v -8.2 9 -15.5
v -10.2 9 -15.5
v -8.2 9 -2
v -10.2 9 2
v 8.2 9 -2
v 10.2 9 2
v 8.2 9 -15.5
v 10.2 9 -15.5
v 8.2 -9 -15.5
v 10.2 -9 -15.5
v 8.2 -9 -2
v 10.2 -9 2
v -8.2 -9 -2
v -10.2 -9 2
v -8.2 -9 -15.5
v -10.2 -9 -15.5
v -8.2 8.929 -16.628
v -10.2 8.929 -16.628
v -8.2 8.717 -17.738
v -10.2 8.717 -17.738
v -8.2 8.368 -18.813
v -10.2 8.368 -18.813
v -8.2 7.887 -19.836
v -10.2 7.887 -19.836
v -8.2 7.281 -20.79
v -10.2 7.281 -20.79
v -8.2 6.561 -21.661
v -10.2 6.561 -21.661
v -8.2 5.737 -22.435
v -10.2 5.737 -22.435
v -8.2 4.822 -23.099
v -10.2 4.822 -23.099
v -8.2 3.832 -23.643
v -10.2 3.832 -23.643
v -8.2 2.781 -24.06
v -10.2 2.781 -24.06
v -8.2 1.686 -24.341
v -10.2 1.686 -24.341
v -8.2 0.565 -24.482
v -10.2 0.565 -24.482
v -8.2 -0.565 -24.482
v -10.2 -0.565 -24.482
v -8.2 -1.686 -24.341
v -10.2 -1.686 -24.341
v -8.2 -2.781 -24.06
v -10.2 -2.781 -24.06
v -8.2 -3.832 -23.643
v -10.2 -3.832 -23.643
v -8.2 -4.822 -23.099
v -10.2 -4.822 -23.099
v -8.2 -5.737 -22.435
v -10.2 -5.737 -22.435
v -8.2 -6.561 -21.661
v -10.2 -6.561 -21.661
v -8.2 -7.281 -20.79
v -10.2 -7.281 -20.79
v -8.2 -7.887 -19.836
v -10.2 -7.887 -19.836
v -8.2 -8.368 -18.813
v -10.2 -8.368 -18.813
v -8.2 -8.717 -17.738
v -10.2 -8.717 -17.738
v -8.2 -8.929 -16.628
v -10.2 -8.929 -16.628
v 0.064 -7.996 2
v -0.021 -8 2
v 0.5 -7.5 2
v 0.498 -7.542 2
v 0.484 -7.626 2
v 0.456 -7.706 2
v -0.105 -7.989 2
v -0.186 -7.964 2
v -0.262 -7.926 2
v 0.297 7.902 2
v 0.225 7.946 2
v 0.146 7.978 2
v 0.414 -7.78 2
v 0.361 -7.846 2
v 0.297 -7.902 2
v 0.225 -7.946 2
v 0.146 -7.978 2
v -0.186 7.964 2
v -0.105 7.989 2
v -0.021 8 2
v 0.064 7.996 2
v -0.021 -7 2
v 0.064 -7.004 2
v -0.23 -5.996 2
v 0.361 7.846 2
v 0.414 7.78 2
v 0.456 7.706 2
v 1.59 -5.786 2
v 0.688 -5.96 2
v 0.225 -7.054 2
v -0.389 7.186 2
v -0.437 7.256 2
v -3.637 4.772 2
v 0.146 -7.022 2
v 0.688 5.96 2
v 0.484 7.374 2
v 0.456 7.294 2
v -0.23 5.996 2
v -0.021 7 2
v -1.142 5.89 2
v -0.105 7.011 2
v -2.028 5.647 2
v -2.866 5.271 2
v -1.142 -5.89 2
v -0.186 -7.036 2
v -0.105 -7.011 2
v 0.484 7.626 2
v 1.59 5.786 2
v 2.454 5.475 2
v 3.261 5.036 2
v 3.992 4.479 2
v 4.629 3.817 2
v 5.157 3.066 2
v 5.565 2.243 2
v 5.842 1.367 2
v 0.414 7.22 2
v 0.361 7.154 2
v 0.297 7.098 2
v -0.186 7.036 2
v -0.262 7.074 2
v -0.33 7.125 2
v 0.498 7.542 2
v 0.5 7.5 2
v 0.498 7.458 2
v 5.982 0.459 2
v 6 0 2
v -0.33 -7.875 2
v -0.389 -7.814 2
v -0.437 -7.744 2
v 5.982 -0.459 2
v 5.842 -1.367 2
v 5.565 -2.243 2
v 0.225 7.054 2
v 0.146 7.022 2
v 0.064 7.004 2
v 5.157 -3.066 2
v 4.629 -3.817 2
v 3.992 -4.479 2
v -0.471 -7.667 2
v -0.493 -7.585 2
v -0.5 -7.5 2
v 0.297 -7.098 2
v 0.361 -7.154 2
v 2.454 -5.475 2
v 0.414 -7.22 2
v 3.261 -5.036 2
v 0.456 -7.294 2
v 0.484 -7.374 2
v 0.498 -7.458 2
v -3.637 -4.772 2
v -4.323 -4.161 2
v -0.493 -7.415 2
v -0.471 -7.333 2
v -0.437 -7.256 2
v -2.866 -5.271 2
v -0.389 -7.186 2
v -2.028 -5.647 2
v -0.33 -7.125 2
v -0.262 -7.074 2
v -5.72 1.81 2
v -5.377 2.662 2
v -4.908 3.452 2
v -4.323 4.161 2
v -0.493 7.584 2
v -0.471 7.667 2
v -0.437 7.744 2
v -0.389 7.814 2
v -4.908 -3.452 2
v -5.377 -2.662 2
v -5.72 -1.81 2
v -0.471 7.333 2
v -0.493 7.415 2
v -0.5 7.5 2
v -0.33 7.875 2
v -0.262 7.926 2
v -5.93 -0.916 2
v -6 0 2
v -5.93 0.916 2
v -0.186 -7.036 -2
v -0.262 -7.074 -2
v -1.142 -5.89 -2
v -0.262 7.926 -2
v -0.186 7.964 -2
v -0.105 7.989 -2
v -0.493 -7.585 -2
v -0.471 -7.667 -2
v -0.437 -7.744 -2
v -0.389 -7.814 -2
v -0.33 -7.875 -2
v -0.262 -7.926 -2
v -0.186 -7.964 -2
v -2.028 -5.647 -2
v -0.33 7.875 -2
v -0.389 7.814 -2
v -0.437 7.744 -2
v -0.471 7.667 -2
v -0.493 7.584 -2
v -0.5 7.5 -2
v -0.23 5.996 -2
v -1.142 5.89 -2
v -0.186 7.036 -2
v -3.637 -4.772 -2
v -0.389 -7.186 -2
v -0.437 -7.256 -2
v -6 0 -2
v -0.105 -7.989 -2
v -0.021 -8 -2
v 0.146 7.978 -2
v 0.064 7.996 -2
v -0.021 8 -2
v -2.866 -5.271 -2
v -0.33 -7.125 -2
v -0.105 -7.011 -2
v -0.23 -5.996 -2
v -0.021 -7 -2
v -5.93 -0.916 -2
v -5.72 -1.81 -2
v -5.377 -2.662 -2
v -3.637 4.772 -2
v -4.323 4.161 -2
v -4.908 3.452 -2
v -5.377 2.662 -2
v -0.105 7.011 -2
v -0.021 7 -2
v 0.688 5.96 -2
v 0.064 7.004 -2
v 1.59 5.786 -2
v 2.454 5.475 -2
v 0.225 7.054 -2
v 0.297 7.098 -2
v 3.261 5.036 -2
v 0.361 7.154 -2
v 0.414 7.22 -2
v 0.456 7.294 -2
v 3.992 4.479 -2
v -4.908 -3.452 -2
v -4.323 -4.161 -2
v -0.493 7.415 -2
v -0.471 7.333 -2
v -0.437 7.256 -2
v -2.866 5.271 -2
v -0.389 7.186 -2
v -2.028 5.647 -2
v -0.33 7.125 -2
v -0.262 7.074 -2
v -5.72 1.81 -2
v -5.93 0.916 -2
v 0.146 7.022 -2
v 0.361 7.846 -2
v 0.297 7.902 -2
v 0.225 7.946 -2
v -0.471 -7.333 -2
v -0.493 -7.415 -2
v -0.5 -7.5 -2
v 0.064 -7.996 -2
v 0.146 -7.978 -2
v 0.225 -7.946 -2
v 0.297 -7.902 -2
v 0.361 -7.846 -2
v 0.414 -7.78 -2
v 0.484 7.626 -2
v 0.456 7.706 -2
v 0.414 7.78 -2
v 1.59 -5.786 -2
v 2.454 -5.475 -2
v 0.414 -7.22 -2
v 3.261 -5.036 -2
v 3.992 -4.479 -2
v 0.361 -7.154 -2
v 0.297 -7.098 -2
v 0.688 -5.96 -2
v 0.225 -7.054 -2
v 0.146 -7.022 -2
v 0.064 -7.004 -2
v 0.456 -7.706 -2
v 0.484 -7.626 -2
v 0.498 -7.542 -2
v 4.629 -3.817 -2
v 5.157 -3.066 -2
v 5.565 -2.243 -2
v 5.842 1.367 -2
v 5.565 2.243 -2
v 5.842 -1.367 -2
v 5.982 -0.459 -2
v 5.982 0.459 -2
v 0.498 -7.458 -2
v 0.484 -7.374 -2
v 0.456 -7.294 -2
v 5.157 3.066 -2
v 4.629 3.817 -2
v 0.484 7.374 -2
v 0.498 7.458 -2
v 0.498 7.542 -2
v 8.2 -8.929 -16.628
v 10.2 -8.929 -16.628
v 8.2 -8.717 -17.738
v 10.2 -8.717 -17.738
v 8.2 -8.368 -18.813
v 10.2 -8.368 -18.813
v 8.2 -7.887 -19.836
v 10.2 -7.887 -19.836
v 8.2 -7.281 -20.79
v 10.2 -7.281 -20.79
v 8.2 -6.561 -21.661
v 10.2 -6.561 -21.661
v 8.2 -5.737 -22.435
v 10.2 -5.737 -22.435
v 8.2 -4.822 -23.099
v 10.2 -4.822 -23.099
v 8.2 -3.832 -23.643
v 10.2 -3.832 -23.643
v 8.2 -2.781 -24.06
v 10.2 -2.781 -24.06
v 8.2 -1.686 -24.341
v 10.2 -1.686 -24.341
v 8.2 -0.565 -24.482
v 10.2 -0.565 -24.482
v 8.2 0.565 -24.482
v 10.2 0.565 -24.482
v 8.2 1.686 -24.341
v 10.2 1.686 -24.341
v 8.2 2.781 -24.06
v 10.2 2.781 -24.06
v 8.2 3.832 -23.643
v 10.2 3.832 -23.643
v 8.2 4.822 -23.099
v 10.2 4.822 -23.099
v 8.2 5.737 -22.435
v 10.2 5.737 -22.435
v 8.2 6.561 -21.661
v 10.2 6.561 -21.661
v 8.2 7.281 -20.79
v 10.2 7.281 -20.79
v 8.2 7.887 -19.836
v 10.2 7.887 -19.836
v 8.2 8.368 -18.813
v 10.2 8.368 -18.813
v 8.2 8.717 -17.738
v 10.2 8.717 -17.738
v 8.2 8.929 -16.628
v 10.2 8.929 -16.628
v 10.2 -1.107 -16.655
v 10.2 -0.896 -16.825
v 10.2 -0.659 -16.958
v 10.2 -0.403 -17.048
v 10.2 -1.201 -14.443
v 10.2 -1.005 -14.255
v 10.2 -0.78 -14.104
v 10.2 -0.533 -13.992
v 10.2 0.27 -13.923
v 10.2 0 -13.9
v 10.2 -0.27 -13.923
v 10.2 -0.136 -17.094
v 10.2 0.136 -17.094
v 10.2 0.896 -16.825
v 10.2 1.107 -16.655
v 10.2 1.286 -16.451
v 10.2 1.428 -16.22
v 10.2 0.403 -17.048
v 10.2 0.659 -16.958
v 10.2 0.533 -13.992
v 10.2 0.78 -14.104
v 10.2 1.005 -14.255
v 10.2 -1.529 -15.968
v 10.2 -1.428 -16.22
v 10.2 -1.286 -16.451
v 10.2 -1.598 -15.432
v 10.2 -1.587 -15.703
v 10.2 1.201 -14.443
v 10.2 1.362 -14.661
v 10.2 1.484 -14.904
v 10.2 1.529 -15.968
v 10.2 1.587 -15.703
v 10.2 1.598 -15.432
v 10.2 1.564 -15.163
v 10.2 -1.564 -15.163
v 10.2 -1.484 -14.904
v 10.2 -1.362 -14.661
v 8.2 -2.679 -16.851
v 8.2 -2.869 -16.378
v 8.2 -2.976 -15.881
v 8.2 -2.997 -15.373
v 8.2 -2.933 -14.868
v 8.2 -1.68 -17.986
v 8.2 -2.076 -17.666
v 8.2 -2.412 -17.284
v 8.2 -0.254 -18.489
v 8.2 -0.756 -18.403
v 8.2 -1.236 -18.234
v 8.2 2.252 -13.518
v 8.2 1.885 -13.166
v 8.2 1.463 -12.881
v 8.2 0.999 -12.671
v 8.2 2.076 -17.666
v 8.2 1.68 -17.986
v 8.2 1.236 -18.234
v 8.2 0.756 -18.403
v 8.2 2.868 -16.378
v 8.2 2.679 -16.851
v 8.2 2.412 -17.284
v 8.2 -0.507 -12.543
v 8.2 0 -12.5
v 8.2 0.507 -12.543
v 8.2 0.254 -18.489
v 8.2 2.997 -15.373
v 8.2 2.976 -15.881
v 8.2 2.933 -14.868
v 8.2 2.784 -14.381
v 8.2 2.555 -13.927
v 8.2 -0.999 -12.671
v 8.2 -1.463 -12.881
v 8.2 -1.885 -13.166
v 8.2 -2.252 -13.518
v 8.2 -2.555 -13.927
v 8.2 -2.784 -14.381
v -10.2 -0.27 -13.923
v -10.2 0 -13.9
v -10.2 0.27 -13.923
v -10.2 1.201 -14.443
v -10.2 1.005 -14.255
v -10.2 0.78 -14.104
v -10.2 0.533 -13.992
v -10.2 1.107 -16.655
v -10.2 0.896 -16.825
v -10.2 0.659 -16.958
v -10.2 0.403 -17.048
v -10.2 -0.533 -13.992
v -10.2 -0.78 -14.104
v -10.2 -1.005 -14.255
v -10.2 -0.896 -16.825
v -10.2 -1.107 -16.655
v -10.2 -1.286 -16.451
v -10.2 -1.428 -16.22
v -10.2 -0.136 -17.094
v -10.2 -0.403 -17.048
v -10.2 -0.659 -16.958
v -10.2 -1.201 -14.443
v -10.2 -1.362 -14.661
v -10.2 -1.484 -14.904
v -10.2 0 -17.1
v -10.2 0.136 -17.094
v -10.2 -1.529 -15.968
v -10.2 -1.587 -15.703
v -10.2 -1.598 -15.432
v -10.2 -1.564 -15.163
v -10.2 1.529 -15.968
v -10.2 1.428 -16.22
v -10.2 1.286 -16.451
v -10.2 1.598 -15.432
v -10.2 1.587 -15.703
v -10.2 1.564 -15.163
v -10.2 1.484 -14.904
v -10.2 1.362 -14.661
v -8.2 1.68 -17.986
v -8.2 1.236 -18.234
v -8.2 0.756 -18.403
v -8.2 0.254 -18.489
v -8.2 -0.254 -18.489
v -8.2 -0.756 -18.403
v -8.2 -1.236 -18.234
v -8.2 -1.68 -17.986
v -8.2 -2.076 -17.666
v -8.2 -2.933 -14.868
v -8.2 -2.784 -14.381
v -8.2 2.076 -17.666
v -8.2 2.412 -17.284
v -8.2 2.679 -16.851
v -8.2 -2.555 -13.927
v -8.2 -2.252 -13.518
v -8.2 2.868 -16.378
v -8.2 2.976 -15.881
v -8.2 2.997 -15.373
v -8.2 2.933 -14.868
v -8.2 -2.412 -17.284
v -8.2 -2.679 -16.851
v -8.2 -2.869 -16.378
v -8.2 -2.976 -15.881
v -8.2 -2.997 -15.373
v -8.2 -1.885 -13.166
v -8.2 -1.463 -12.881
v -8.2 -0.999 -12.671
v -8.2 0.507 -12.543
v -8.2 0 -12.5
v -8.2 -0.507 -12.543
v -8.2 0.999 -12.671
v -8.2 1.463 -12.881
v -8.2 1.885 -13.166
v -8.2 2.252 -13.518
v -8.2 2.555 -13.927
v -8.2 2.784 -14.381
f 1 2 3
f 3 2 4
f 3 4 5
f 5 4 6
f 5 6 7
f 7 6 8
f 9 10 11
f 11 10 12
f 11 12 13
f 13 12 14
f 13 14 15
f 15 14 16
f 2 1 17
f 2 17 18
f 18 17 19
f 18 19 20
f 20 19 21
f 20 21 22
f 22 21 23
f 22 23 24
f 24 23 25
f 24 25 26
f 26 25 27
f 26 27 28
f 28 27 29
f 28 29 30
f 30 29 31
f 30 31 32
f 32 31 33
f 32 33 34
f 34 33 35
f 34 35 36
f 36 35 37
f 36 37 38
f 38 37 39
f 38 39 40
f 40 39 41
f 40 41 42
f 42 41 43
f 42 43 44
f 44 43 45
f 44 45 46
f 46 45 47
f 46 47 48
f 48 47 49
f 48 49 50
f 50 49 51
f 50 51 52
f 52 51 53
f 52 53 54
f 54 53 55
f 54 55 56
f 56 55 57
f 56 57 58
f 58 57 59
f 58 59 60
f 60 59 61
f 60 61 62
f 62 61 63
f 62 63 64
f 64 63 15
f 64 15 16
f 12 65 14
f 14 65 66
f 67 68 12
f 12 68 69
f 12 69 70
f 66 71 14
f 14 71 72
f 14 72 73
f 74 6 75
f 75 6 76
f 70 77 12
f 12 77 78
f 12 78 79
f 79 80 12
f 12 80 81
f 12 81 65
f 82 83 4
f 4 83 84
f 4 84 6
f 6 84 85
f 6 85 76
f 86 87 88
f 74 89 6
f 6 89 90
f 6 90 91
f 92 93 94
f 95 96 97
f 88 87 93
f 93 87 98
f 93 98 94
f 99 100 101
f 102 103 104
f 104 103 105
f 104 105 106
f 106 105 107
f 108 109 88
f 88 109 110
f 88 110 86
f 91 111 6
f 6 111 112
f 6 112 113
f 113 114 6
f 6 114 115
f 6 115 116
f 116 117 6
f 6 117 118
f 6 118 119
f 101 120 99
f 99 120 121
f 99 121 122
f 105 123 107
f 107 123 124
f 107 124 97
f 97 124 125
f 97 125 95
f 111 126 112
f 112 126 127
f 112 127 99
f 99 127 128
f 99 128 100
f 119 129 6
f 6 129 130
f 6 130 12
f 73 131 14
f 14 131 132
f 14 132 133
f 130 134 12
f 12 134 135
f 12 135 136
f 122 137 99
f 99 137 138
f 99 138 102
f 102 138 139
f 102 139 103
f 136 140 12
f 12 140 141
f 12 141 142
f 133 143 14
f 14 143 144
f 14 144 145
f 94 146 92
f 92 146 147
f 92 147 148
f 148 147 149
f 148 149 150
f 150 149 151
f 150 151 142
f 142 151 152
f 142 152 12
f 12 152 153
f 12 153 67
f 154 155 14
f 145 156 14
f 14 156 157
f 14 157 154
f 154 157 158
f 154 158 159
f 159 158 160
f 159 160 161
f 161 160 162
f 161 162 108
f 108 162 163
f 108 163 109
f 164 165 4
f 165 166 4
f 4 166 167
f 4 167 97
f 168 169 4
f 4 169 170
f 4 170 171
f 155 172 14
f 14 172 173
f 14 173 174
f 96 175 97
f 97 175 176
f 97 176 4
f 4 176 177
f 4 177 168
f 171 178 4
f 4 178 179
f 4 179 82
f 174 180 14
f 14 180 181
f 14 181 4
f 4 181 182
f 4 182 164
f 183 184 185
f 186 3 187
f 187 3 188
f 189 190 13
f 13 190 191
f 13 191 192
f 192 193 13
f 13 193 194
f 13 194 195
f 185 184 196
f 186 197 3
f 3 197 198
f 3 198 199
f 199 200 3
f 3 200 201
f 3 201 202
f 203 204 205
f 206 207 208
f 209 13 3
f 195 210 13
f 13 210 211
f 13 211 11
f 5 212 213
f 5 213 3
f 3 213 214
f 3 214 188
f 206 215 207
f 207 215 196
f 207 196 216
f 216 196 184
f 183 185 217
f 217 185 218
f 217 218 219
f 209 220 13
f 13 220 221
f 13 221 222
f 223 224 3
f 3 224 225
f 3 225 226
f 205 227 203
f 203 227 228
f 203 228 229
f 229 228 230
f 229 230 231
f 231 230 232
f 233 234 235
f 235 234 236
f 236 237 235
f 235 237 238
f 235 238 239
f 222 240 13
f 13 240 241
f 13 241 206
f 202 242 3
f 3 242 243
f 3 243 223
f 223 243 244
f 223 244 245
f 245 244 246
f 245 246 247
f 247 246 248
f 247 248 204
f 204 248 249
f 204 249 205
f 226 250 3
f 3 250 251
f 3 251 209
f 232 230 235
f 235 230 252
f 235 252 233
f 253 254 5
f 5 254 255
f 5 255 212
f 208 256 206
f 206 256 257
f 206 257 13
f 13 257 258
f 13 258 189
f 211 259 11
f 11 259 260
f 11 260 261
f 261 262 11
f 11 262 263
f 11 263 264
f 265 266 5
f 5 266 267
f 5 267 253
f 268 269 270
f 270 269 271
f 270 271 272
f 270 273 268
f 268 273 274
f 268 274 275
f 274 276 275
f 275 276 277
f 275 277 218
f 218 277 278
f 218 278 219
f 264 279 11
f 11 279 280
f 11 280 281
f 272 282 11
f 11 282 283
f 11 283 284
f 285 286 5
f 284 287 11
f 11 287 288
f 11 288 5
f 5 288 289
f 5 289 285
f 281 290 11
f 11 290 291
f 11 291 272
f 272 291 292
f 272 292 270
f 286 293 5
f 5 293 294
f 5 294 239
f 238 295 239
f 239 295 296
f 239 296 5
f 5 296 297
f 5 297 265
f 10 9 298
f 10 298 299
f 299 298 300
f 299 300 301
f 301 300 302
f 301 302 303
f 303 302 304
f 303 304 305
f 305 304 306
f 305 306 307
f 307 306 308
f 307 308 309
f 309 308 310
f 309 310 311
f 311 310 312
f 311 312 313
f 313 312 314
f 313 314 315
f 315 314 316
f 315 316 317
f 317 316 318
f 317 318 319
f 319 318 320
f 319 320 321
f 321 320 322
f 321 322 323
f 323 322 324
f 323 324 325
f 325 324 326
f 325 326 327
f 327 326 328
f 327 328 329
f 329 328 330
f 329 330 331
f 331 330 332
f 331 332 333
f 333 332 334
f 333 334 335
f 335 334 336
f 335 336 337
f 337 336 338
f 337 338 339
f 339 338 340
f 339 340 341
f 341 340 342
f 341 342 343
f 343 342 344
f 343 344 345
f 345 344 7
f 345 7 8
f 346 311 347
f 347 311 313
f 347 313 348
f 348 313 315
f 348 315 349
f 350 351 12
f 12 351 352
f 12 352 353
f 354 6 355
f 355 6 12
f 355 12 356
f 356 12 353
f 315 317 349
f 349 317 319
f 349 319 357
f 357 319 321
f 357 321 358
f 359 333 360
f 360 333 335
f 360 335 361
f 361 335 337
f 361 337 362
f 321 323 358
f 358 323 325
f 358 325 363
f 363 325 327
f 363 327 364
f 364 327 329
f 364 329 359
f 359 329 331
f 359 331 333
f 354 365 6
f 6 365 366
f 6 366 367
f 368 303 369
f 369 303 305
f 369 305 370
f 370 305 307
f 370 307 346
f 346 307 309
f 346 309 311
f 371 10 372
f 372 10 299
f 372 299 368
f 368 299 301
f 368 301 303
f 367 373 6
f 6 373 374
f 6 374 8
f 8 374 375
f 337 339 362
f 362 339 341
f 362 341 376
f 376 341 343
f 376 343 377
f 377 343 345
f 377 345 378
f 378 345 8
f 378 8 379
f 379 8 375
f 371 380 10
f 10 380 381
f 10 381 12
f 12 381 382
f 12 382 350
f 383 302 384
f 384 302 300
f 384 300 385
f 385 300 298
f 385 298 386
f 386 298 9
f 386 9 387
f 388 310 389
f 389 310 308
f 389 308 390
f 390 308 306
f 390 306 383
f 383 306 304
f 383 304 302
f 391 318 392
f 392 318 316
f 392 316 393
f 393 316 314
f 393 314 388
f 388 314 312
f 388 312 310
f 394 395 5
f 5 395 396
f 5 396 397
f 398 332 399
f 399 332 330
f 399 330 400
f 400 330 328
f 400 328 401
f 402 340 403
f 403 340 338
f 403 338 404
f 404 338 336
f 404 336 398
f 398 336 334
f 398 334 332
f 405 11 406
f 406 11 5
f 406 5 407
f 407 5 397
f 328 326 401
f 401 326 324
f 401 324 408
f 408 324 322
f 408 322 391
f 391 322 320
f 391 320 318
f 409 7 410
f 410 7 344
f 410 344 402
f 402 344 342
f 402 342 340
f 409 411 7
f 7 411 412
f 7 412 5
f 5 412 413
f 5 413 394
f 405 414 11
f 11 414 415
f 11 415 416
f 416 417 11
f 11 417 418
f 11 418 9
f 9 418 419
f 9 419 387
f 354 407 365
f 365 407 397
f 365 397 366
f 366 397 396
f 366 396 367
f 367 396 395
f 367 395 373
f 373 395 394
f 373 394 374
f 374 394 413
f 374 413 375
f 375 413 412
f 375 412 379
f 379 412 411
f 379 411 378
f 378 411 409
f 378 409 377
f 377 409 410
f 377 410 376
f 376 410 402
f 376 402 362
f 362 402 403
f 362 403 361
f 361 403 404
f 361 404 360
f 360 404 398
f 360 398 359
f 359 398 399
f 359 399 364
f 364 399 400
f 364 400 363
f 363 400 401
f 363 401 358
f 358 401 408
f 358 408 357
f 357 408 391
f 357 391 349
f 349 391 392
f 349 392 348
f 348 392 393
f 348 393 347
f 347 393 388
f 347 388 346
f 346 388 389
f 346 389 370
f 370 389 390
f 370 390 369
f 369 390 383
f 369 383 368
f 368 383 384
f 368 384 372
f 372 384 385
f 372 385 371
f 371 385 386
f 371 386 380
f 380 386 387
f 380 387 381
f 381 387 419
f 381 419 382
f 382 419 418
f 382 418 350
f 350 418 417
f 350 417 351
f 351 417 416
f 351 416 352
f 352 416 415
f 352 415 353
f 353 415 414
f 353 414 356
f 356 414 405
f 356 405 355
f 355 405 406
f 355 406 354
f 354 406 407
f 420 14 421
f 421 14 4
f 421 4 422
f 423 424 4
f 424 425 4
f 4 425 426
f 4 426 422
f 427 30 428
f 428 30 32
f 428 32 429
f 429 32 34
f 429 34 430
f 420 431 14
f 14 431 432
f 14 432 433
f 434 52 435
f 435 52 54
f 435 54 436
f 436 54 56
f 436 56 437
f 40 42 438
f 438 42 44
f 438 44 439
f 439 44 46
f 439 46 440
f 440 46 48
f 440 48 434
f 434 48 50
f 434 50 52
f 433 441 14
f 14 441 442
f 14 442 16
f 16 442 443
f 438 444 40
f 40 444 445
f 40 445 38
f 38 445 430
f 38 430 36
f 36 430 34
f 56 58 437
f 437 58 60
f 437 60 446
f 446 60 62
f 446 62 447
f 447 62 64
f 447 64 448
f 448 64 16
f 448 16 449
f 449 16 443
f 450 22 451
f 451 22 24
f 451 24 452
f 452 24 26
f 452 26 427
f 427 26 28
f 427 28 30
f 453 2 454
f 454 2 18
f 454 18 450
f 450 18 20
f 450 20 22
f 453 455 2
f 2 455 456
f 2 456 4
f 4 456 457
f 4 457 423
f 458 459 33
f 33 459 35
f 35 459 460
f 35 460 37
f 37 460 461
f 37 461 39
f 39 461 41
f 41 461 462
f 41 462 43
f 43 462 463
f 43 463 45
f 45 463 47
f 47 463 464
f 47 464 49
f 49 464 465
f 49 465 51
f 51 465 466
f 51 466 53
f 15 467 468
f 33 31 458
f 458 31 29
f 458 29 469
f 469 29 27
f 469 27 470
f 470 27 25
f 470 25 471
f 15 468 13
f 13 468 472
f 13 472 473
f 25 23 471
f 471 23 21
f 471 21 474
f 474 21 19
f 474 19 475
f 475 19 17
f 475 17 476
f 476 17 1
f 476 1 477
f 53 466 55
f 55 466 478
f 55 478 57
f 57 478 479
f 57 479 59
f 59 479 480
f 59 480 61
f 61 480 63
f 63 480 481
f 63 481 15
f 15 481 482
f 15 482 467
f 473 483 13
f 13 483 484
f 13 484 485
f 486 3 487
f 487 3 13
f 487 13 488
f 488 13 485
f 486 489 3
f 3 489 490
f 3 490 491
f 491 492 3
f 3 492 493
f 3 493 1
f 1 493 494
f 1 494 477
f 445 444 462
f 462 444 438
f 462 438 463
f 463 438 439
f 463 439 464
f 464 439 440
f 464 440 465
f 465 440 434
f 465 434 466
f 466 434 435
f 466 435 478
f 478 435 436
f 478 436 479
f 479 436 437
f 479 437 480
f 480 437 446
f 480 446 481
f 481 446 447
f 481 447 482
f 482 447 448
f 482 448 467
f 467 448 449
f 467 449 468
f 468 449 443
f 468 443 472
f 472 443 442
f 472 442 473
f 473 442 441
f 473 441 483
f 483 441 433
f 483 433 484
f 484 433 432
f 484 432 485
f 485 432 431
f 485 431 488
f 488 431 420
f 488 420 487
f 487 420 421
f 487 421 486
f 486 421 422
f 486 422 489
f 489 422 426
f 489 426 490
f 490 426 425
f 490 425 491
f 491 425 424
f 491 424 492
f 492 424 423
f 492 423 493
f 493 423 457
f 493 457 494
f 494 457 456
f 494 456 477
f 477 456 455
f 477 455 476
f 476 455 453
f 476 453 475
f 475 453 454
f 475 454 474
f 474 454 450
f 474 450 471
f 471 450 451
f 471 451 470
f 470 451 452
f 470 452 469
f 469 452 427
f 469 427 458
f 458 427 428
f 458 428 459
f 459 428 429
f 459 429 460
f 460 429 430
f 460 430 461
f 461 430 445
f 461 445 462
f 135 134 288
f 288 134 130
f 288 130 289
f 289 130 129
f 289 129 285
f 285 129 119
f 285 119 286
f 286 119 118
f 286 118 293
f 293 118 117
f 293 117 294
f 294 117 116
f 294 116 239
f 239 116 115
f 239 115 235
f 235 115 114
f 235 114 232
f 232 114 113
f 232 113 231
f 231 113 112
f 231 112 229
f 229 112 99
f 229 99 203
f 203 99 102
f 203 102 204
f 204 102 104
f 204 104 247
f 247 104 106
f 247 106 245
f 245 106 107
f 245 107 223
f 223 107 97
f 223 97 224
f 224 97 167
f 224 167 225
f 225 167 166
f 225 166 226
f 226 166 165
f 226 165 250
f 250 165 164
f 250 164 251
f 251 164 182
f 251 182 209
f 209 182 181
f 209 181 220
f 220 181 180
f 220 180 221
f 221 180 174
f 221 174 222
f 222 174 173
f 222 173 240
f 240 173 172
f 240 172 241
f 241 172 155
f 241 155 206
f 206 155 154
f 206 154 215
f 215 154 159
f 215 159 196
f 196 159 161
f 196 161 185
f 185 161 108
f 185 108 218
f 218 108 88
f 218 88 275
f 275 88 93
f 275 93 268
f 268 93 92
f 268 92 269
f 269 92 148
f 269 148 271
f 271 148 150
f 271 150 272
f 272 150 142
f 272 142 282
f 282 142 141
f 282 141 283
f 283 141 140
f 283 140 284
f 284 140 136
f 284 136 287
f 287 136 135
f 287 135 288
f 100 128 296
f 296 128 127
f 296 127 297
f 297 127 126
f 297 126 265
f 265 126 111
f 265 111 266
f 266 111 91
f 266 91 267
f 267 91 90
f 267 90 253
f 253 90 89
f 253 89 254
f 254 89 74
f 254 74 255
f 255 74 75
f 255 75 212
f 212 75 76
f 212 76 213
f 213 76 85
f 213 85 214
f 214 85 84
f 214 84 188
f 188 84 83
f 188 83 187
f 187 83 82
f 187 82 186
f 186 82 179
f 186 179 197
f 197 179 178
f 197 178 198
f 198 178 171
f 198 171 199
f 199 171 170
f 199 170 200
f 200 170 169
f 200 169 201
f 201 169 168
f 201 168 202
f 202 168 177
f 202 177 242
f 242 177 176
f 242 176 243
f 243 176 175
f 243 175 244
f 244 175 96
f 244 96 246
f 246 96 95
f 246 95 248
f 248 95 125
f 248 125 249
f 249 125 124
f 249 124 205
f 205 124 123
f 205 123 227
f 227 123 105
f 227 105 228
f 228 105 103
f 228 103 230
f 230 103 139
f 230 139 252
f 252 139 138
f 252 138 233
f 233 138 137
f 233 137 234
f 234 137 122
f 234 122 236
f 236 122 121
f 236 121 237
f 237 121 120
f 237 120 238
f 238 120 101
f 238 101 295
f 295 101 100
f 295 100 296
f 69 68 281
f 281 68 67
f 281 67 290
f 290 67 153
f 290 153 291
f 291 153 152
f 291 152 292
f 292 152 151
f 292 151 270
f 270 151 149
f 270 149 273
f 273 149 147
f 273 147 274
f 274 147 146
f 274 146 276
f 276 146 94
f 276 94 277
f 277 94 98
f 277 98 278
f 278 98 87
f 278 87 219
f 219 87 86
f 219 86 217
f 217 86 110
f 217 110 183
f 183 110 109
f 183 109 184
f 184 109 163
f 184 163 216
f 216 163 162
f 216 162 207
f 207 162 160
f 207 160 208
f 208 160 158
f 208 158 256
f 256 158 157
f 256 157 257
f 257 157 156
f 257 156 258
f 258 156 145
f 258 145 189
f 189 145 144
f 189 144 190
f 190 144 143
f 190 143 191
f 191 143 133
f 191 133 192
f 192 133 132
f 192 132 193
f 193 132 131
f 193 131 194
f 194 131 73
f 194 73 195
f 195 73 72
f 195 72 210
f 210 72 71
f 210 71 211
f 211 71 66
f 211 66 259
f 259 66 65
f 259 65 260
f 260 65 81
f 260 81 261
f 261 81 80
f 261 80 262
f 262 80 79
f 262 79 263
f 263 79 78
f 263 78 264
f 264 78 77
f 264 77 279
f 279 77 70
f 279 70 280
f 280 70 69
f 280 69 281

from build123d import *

# Parameters (mm, degrees)
SKETCH1_W               = 16
SKETCH1_H               = 18
SKETCH1_W_2             = 12
SKETCH1_H_2             = 14
EXTRUDE_THIN1_DEPTH     = 2
BOSS_EXTRUDE3_DEPTH     = 2.2
CUT_EXTRUDE4_REACH      = 34.067
SKETCH10_W              = 0.2
SKETCH10_H              = 27.531461486
SKETCH5_R               = 3
CUT_EXTRUDE1_DEPTH      = 2
CUT_EXTRUDE1_DRAFT      = -35
MIRROR3_COPY_1_SKETCH_R = 3
MIRROR3_COPY_1_DEPTH    = 2
MIRROR3_COPY_1_DRAFT    = -35
SKETCH14_W              = 12
SKETCH14_H              = 4
BOSS_EXTRUDE5_DEPTH     = 14
CUT_EXTRUDE6_REACH      = 28.292
SKETCH15_R              = 6
CUT_EXTRUDE8_REACH      = 28.292
SKETCH19_R              = 0.5


with BuildPart() as part:
    # Sketch1 → Extrude-Thin1 (new, symmetric)
    with BuildSketch(Plane.XY):
        Rectangle(SKETCH1_W, SKETCH1_H)
        Rectangle(SKETCH1_W_2, SKETCH1_H_2, mode=Mode.SUBTRACT)
    extrude_thin1 = extrude(amount=EXTRUDE_THIN1_DEPTH, both=True)

    # Sketch4 → Boss-Extrude3 (add)
    with BuildSketch(Plane(origin=(8, 0, 0), x_dir=(0, 0, -1), z_dir=(1, 0, 0))):
        with BuildLine():
            Line((-2, 9), (15.5, 9))
            ThreePointArc((15.5, 9), (24.5, 0), (15.5, -9))
            Line((15.5, -9), (-2, -9))
            Line((-2, -9), (-2, 9))
        make_face()
    boss_extrude3 = extrude(amount=BOSS_EXTRUDE3_DEPTH)

    # Sketch10 → Cut-Extrude4 (cut, up to next)
    with BuildSketch(Plane(origin=(0, 9, 0), x_dir=(1, 0, 0), z_dir=(0, 1, 0)), mode=Mode.PRIVATE) as cut_extrude4_sk1:
        with Locations((8.1, 15.765730743)):
            Rectangle(SKETCH10_W, SKETCH10_H)
    cut_extrude4_tool1 = extrude(cut_extrude4_sk1.sketch, amount=-CUT_EXTRUDE4_REACH, mode=Mode.PRIVATE) & part.part
    cut_extrude4 = cut_extrude4_tool1.solids().sort_by_distance((8.1, 9, -15.765731))[0]
    add(cut_extrude4, mode=Mode.SUBTRACT)


with BuildPart() as cut_extrude1_tool:
    # Sketch5 → Cut-Extrude1 (with draft: the straight prism first)
    with BuildSketch(Plane.ZY.offset(-8.2)):
        with Locations((-15.5, 0)):
            Circle(SKETCH5_R)
    extrude(amount=-CUT_EXTRUDE1_DEPTH)
    # Cut-Extrude1: the draft: its side faces are tilted about the plane it starts from
    cut_extrude1_sides = [cut_extrude1_tool.faces().sort_by_distance(p)[0] for p in [
        (9.2, 0, -18.5),
    ]]
    draft(cut_extrude1_sides, Plane.ZY.offset(-8.2), CUT_EXTRUDE1_DRAFT)


with BuildPart() as part_1:
    add(part.part)

    # Cut-Extrude1: cut by cut_extrude1_tool
    add(cut_extrude1_tool.part, mode=Mode.SUBTRACT)

    # Mirror3: Extrude-Thin1, Boss-Extrude3, Cut-Extrude4 across plane
    add(extrude_thin1.mirror(Plane(origin=(0, 0, 0), x_dir=(0, 0, 1), z_dir=(1, 0, 0))))
    add(boss_extrude3.mirror(Plane(origin=(0, 0, 0), x_dir=(0, 0, 1), z_dir=(1, 0, 0))))
    add(cut_extrude4.mirror(Plane(origin=(0, 0, 0), x_dir=(0, 0, 1), z_dir=(1, 0, 0))), mode=Mode.SUBTRACT)


with BuildPart() as mirror3_copy_1_tool:
    # Mirror3 copy 1 sketch → Mirror3 copy 1 (with draft: the straight prism first)
    with BuildSketch(Plane(origin=(-8.2, 0, 0), x_dir=(0, 0, 1), z_dir=(1, 0, 0))):
        with Locations((-15.5, 0)):
            Circle(MIRROR3_COPY_1_SKETCH_R)
    extrude(amount=-MIRROR3_COPY_1_DEPTH)
    # Mirror3 copy 1: the draft: its side faces are tilted about the plane it starts from
    mirror3_copy_1_sides = [mirror3_copy_1_tool.faces().sort_by_distance(p)[0] for p in [
        (-9.2, 0, -18.5),
    ]]
    draft(mirror3_copy_1_sides, Plane(origin=(-8.2, 0, 0), x_dir=(0, 0, 1), z_dir=(1, 0, 0)), MIRROR3_COPY_1_DRAFT)


with BuildPart() as part_2:
    add(part_1.part)

    # Mirror3 copy 1: cut by mirror3_copy_1_tool
    add(mirror3_copy_1_tool.part, mode=Mode.SUBTRACT)

    # Sketch14 → Boss-Extrude5 (add)
    with BuildSketch(Plane(origin=(0, -7, 0), x_dir=(1, 0, 0), z_dir=(0, 1, 0))):
        Rectangle(SKETCH14_W, SKETCH14_H)
    extrude(amount=BOSS_EXTRUDE5_DEPTH)

    # Sketch15 → Cut-Extrude6 (cut, up to next)
    with BuildSketch(Plane(origin=(0, 0, -2), x_dir=(-1, 0, 0), z_dir=(0, 0, -1)), mode=Mode.PRIVATE) as cut_extrude6_sk1:
        Circle(SKETCH15_R)
    cut_extrude6_tool1 = extrude(cut_extrude6_sk1.sketch, amount=-CUT_EXTRUDE6_REACH, mode=Mode.PRIVATE) & part_2.part
    add(cut_extrude6_tool1.solids().sort_by_distance((0, 0, -2))[0], mode=Mode.SUBTRACT)

    # Sketch19 → Cut-Extrude8 (cut, up to next)
    with BuildSketch(Plane(origin=(0, 0, -2), x_dir=(-1, 0, 0), z_dir=(0, 0, -1)), mode=Mode.PRIVATE) as cut_extrude8_sk1:
        with Locations((0, 7.5)):
            Circle(SKETCH19_R)
    cut_extrude8_tool1 = extrude(cut_extrude8_sk1.sketch, amount=-CUT_EXTRUDE8_REACH, mode=Mode.PRIVATE) & part_2.part
    cut_extrude8 = cut_extrude8_tool1.solids().sort_by_distance((0, 7.5, -2))[0]
    add(cut_extrude8, mode=Mode.SUBTRACT)

    # Mirror8: Cut-Extrude8 across plane
    add(cut_extrude8.mirror(Plane.ZX), mode=Mode.SUBTRACT)

    # Mirror8 at the second plane: Cut-Extrude8 across plane
    add(cut_extrude8.mirror(Plane(origin=(0, 0, 0), x_dir=(0, 0, 1), z_dir=(1, 0, 0))), mode=Mode.SUBTRACT)


solid = part_2.part
